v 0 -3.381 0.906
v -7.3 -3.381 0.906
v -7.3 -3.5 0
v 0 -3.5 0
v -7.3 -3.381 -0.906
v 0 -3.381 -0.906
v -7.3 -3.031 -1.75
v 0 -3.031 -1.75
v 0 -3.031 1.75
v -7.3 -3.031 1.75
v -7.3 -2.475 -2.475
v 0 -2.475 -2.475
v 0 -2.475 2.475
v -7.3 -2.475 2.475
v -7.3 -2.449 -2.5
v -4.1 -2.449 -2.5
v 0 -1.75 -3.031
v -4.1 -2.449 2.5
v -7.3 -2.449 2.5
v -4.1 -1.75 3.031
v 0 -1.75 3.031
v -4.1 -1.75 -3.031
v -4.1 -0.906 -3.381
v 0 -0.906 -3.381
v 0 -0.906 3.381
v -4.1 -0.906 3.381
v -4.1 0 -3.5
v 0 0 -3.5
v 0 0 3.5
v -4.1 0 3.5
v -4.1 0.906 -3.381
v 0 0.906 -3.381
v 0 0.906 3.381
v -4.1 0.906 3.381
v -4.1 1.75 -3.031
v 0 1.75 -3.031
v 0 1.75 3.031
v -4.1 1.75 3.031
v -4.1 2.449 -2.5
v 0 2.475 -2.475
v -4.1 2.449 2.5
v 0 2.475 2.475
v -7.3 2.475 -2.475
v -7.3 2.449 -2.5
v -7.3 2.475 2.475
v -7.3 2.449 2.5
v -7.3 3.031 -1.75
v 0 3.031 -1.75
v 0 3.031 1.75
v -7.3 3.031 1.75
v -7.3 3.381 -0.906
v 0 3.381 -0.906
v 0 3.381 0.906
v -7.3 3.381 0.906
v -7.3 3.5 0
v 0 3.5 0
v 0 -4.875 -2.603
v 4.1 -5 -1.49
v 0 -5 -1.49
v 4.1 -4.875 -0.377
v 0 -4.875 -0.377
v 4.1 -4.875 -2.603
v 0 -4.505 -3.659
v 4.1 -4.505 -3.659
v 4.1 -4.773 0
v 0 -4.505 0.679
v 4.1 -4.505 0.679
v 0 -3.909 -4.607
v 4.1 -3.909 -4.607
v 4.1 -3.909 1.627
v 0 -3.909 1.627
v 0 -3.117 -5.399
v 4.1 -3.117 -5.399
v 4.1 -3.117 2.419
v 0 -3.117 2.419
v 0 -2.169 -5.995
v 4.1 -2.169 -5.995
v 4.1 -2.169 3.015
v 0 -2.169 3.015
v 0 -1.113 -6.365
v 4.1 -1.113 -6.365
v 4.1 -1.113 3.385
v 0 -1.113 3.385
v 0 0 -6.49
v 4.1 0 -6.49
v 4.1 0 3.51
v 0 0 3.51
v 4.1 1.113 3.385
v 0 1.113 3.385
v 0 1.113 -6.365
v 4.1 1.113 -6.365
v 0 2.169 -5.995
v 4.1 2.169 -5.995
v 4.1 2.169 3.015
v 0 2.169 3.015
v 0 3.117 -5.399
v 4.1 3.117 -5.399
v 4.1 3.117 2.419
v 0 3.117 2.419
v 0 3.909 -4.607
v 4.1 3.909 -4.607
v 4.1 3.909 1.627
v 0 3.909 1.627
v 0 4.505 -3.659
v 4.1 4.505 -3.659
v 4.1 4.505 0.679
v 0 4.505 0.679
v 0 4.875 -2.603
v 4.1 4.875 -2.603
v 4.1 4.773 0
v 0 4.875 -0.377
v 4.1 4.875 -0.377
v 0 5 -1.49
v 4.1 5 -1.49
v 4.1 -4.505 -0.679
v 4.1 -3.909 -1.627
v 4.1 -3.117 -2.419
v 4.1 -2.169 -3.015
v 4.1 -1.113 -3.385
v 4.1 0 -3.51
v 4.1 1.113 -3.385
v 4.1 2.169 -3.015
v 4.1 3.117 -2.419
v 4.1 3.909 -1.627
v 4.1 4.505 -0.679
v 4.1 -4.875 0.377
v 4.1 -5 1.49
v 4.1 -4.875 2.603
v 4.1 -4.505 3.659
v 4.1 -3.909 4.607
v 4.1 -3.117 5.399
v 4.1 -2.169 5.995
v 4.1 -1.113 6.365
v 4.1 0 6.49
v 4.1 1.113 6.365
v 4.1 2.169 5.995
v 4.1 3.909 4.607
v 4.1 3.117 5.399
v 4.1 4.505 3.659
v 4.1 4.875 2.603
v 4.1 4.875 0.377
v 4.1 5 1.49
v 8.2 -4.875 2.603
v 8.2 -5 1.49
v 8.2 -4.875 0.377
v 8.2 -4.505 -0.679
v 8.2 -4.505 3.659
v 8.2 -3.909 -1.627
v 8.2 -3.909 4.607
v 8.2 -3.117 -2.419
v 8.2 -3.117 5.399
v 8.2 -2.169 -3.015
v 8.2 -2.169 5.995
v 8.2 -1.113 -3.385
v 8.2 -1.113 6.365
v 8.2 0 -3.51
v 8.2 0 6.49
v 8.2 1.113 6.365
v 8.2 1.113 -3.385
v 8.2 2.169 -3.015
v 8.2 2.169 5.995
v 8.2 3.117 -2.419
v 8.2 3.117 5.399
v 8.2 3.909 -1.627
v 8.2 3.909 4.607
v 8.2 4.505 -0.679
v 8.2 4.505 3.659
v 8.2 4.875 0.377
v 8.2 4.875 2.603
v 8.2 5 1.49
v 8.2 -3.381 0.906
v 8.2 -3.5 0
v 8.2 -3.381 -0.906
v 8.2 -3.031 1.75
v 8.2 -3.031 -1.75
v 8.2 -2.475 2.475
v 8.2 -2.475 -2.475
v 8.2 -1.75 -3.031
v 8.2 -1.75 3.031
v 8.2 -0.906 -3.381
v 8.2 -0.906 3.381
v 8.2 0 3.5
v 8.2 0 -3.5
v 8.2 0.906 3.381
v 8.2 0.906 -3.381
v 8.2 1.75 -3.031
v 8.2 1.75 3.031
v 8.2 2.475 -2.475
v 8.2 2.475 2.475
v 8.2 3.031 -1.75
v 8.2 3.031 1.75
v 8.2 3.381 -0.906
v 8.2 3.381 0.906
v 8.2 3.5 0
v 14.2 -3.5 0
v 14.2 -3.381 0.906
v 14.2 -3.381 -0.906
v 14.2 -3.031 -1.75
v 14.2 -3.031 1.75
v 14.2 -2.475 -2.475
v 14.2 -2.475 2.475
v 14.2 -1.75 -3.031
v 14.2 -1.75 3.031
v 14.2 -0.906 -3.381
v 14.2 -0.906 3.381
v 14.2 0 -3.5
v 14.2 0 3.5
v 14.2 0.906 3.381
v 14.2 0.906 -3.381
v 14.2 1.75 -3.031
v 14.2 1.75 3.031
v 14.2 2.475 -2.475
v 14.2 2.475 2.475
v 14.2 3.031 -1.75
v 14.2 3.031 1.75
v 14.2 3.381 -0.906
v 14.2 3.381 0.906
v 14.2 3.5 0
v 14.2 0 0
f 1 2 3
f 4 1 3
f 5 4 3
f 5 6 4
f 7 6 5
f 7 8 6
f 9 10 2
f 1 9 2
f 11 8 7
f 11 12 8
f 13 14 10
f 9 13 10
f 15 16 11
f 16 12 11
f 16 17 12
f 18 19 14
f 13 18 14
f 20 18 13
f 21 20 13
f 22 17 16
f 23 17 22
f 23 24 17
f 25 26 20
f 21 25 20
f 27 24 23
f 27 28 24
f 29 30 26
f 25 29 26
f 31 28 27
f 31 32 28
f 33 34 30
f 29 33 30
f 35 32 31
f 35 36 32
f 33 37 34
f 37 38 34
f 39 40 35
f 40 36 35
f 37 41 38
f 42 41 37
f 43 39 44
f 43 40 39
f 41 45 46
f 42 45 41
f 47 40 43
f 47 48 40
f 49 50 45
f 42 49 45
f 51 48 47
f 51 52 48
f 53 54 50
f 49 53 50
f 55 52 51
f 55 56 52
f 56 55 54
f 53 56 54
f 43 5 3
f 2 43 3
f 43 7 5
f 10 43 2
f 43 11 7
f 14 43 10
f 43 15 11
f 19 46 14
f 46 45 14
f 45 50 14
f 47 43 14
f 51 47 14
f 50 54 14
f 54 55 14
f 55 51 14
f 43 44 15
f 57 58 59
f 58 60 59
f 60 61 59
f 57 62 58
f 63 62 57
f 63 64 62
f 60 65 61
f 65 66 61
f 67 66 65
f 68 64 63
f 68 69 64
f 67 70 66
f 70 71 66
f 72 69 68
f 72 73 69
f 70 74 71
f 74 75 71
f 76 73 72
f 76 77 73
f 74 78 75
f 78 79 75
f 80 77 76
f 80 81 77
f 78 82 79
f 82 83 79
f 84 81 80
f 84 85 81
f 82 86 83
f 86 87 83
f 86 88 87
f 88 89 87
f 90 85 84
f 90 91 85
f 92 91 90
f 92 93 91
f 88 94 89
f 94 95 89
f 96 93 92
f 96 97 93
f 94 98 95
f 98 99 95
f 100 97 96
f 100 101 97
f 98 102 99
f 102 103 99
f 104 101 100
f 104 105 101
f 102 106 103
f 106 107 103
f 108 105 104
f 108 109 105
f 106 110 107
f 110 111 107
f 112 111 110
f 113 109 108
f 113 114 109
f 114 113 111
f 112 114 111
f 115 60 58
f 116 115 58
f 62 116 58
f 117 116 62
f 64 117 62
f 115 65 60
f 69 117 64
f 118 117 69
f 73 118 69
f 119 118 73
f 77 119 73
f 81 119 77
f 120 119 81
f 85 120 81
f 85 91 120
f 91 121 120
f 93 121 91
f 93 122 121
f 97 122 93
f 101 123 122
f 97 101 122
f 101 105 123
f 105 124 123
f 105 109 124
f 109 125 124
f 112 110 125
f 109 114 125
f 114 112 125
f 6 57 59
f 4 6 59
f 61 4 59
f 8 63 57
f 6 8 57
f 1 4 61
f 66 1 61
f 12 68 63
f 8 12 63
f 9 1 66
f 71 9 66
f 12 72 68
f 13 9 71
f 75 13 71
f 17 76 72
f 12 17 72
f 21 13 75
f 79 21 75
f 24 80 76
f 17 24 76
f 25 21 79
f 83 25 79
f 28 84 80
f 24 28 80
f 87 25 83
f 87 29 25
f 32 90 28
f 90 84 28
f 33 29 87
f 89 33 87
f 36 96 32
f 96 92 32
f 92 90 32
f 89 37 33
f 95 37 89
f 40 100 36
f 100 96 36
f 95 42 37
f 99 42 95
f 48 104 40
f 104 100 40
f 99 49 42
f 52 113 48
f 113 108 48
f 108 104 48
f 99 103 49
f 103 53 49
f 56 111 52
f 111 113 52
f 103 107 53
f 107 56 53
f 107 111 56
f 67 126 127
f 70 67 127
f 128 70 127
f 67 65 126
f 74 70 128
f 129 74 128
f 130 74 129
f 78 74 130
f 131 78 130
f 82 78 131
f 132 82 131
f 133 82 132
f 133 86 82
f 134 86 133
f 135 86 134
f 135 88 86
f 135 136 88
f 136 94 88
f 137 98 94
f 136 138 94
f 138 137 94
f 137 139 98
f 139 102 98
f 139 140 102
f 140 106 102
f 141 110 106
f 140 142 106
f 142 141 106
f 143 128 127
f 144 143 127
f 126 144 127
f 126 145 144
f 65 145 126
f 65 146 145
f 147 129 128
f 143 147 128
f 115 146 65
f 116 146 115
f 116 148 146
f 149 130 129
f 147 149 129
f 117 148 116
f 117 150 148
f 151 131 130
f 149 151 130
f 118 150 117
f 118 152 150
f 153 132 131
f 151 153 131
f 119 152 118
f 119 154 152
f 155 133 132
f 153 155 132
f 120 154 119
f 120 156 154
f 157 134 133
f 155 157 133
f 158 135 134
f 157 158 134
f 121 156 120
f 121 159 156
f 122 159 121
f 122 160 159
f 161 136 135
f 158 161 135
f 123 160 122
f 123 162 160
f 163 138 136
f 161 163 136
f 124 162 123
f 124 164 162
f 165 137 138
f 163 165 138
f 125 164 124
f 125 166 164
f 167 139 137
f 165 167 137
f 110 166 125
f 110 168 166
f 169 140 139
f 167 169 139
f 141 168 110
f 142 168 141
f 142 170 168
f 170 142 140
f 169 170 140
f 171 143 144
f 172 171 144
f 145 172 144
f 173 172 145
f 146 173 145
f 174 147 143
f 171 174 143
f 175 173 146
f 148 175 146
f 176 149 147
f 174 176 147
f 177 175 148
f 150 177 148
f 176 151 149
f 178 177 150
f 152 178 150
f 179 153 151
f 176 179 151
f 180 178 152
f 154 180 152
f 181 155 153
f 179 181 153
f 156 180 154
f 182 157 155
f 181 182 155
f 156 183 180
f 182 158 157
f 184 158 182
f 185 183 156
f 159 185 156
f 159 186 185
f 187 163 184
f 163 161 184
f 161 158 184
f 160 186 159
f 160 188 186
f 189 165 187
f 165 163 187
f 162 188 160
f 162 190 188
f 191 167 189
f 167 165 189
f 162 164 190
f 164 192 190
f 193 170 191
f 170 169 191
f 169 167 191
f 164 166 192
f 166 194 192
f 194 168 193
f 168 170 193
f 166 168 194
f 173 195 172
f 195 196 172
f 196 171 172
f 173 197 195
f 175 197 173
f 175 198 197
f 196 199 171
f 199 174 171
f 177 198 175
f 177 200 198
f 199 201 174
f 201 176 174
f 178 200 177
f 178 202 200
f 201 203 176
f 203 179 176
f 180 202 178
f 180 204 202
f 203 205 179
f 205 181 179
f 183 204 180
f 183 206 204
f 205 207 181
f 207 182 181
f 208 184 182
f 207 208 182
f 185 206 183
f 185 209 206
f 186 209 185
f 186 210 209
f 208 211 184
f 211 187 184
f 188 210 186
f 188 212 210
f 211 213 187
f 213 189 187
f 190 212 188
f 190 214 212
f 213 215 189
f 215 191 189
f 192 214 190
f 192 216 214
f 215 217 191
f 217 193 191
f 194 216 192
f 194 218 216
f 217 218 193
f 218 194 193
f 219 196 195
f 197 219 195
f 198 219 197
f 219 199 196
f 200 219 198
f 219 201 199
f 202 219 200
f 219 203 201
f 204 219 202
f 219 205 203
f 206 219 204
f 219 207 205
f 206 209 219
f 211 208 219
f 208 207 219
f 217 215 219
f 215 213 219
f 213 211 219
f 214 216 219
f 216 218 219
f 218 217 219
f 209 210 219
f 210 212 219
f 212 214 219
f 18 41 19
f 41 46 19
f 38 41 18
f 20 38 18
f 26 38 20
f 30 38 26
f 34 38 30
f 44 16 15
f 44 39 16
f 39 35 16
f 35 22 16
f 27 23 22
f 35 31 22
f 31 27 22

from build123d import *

# Parameters (mm, degrees)
SKETCH_1_R          = 3.5
EXTRUDE_1_DEPTH     = 7.3
SKETCH_2_R          = 5
EXTRUDE_2_DEPTH     = 4.1
SKETCH_3_R          = 5
EXTRUDE_3_DEPTH     = 4.1
EXTRUDE_START       = 6
SKETCH_4_R          = 3.5
EXTRUDE_4_DEPTH     = 6
CUT_EXTRUDE_START   = -3.2
CUT_EXTRUDE_1_DEPTH = 3.2


with BuildPart() as part:
    # 草图1 → 凸台-拉伸1 (new body)
    with BuildSketch(Plane(origin=(0, 0, 0), x_dir=(0, 0, -1), z_dir=(1, 0, 0))):
        Circle(SKETCH_1_R)
    extrude(amount=-EXTRUDE_1_DEPTH)

    # 草图2 → 凸台-拉伸2 (add)
    with BuildSketch(Plane(origin=(0, 0, 0), x_dir=(0, 0, -1), z_dir=(1, 0, 0))):
        with Locations((1.49, 0)):
            Circle(SKETCH_2_R)
    extrude(amount=EXTRUDE_2_DEPTH)

    # 草图3 → 凸台-拉伸3 (add)
    with BuildSketch(Plane(origin=(4.1, 0, 0), x_dir=(0, 0, -1), z_dir=(1, 0, 0))):
        with Locations(Location((-1.49, 0, 0), (0, 0, 287.337518018))):
            Circle(SKETCH_3_R)
    extrude(amount=EXTRUDE_3_DEPTH)

    # 草图4 → 凸台-拉伸4 (add)
    with BuildSketch(Plane(origin=(8.2, 0, 0), x_dir=(0, 0, -1), z_dir=(1, 0, 0)).offset(EXTRUDE_START)):
        Circle(SKETCH_4_R)
    extrude(amount=-EXTRUDE_4_DEPTH)

    # 草图7 → 切除-拉伸1 (cut)
    with BuildSketch(Plane.ZY.offset(7.3).offset(CUT_EXTRUDE_START)):
        with BuildLine():
            Line((-2.5, 0), (-3.5, 0))
            ThreePointArc((-3.5, 0), (-3.240370349, -1.322875656), (-2.5, -2.449489743))
            Line((-2.5, -2.449489743), (-2.5, 0))
        make_face()
        with BuildLine():
            ThreePointArc((-2.5, 2.449489743), (-3.240370349, 1.322875656), (-3.5, 0))
            Line((-3.5, 0), (-2.5, 0))
            Line((-2.5, 0), (-2.5, 2.449489743))
        make_face()
        with BuildLine():
            Line((2.5, 0), (2.5, -2.449489743))
            ThreePointArc((2.5, -2.449489743), (3.240370349, -1.322875656), (3.5, 0))
            Line((3.5, 0), (2.5, 0))
        make_face()
        with BuildLine():
            ThreePointArc((3.5, 0), (3.240370349, 1.322875656), (2.5, 2.449489743))
            Line((2.5, 2.449489743), (2.5, 0))
            Line((2.5, 0), (3.5, 0))
        make_face()
    extrude(amount=CUT_EXTRUDE_1_DEPTH, mode=Mode.SUBTRACT)


solid = part.part
